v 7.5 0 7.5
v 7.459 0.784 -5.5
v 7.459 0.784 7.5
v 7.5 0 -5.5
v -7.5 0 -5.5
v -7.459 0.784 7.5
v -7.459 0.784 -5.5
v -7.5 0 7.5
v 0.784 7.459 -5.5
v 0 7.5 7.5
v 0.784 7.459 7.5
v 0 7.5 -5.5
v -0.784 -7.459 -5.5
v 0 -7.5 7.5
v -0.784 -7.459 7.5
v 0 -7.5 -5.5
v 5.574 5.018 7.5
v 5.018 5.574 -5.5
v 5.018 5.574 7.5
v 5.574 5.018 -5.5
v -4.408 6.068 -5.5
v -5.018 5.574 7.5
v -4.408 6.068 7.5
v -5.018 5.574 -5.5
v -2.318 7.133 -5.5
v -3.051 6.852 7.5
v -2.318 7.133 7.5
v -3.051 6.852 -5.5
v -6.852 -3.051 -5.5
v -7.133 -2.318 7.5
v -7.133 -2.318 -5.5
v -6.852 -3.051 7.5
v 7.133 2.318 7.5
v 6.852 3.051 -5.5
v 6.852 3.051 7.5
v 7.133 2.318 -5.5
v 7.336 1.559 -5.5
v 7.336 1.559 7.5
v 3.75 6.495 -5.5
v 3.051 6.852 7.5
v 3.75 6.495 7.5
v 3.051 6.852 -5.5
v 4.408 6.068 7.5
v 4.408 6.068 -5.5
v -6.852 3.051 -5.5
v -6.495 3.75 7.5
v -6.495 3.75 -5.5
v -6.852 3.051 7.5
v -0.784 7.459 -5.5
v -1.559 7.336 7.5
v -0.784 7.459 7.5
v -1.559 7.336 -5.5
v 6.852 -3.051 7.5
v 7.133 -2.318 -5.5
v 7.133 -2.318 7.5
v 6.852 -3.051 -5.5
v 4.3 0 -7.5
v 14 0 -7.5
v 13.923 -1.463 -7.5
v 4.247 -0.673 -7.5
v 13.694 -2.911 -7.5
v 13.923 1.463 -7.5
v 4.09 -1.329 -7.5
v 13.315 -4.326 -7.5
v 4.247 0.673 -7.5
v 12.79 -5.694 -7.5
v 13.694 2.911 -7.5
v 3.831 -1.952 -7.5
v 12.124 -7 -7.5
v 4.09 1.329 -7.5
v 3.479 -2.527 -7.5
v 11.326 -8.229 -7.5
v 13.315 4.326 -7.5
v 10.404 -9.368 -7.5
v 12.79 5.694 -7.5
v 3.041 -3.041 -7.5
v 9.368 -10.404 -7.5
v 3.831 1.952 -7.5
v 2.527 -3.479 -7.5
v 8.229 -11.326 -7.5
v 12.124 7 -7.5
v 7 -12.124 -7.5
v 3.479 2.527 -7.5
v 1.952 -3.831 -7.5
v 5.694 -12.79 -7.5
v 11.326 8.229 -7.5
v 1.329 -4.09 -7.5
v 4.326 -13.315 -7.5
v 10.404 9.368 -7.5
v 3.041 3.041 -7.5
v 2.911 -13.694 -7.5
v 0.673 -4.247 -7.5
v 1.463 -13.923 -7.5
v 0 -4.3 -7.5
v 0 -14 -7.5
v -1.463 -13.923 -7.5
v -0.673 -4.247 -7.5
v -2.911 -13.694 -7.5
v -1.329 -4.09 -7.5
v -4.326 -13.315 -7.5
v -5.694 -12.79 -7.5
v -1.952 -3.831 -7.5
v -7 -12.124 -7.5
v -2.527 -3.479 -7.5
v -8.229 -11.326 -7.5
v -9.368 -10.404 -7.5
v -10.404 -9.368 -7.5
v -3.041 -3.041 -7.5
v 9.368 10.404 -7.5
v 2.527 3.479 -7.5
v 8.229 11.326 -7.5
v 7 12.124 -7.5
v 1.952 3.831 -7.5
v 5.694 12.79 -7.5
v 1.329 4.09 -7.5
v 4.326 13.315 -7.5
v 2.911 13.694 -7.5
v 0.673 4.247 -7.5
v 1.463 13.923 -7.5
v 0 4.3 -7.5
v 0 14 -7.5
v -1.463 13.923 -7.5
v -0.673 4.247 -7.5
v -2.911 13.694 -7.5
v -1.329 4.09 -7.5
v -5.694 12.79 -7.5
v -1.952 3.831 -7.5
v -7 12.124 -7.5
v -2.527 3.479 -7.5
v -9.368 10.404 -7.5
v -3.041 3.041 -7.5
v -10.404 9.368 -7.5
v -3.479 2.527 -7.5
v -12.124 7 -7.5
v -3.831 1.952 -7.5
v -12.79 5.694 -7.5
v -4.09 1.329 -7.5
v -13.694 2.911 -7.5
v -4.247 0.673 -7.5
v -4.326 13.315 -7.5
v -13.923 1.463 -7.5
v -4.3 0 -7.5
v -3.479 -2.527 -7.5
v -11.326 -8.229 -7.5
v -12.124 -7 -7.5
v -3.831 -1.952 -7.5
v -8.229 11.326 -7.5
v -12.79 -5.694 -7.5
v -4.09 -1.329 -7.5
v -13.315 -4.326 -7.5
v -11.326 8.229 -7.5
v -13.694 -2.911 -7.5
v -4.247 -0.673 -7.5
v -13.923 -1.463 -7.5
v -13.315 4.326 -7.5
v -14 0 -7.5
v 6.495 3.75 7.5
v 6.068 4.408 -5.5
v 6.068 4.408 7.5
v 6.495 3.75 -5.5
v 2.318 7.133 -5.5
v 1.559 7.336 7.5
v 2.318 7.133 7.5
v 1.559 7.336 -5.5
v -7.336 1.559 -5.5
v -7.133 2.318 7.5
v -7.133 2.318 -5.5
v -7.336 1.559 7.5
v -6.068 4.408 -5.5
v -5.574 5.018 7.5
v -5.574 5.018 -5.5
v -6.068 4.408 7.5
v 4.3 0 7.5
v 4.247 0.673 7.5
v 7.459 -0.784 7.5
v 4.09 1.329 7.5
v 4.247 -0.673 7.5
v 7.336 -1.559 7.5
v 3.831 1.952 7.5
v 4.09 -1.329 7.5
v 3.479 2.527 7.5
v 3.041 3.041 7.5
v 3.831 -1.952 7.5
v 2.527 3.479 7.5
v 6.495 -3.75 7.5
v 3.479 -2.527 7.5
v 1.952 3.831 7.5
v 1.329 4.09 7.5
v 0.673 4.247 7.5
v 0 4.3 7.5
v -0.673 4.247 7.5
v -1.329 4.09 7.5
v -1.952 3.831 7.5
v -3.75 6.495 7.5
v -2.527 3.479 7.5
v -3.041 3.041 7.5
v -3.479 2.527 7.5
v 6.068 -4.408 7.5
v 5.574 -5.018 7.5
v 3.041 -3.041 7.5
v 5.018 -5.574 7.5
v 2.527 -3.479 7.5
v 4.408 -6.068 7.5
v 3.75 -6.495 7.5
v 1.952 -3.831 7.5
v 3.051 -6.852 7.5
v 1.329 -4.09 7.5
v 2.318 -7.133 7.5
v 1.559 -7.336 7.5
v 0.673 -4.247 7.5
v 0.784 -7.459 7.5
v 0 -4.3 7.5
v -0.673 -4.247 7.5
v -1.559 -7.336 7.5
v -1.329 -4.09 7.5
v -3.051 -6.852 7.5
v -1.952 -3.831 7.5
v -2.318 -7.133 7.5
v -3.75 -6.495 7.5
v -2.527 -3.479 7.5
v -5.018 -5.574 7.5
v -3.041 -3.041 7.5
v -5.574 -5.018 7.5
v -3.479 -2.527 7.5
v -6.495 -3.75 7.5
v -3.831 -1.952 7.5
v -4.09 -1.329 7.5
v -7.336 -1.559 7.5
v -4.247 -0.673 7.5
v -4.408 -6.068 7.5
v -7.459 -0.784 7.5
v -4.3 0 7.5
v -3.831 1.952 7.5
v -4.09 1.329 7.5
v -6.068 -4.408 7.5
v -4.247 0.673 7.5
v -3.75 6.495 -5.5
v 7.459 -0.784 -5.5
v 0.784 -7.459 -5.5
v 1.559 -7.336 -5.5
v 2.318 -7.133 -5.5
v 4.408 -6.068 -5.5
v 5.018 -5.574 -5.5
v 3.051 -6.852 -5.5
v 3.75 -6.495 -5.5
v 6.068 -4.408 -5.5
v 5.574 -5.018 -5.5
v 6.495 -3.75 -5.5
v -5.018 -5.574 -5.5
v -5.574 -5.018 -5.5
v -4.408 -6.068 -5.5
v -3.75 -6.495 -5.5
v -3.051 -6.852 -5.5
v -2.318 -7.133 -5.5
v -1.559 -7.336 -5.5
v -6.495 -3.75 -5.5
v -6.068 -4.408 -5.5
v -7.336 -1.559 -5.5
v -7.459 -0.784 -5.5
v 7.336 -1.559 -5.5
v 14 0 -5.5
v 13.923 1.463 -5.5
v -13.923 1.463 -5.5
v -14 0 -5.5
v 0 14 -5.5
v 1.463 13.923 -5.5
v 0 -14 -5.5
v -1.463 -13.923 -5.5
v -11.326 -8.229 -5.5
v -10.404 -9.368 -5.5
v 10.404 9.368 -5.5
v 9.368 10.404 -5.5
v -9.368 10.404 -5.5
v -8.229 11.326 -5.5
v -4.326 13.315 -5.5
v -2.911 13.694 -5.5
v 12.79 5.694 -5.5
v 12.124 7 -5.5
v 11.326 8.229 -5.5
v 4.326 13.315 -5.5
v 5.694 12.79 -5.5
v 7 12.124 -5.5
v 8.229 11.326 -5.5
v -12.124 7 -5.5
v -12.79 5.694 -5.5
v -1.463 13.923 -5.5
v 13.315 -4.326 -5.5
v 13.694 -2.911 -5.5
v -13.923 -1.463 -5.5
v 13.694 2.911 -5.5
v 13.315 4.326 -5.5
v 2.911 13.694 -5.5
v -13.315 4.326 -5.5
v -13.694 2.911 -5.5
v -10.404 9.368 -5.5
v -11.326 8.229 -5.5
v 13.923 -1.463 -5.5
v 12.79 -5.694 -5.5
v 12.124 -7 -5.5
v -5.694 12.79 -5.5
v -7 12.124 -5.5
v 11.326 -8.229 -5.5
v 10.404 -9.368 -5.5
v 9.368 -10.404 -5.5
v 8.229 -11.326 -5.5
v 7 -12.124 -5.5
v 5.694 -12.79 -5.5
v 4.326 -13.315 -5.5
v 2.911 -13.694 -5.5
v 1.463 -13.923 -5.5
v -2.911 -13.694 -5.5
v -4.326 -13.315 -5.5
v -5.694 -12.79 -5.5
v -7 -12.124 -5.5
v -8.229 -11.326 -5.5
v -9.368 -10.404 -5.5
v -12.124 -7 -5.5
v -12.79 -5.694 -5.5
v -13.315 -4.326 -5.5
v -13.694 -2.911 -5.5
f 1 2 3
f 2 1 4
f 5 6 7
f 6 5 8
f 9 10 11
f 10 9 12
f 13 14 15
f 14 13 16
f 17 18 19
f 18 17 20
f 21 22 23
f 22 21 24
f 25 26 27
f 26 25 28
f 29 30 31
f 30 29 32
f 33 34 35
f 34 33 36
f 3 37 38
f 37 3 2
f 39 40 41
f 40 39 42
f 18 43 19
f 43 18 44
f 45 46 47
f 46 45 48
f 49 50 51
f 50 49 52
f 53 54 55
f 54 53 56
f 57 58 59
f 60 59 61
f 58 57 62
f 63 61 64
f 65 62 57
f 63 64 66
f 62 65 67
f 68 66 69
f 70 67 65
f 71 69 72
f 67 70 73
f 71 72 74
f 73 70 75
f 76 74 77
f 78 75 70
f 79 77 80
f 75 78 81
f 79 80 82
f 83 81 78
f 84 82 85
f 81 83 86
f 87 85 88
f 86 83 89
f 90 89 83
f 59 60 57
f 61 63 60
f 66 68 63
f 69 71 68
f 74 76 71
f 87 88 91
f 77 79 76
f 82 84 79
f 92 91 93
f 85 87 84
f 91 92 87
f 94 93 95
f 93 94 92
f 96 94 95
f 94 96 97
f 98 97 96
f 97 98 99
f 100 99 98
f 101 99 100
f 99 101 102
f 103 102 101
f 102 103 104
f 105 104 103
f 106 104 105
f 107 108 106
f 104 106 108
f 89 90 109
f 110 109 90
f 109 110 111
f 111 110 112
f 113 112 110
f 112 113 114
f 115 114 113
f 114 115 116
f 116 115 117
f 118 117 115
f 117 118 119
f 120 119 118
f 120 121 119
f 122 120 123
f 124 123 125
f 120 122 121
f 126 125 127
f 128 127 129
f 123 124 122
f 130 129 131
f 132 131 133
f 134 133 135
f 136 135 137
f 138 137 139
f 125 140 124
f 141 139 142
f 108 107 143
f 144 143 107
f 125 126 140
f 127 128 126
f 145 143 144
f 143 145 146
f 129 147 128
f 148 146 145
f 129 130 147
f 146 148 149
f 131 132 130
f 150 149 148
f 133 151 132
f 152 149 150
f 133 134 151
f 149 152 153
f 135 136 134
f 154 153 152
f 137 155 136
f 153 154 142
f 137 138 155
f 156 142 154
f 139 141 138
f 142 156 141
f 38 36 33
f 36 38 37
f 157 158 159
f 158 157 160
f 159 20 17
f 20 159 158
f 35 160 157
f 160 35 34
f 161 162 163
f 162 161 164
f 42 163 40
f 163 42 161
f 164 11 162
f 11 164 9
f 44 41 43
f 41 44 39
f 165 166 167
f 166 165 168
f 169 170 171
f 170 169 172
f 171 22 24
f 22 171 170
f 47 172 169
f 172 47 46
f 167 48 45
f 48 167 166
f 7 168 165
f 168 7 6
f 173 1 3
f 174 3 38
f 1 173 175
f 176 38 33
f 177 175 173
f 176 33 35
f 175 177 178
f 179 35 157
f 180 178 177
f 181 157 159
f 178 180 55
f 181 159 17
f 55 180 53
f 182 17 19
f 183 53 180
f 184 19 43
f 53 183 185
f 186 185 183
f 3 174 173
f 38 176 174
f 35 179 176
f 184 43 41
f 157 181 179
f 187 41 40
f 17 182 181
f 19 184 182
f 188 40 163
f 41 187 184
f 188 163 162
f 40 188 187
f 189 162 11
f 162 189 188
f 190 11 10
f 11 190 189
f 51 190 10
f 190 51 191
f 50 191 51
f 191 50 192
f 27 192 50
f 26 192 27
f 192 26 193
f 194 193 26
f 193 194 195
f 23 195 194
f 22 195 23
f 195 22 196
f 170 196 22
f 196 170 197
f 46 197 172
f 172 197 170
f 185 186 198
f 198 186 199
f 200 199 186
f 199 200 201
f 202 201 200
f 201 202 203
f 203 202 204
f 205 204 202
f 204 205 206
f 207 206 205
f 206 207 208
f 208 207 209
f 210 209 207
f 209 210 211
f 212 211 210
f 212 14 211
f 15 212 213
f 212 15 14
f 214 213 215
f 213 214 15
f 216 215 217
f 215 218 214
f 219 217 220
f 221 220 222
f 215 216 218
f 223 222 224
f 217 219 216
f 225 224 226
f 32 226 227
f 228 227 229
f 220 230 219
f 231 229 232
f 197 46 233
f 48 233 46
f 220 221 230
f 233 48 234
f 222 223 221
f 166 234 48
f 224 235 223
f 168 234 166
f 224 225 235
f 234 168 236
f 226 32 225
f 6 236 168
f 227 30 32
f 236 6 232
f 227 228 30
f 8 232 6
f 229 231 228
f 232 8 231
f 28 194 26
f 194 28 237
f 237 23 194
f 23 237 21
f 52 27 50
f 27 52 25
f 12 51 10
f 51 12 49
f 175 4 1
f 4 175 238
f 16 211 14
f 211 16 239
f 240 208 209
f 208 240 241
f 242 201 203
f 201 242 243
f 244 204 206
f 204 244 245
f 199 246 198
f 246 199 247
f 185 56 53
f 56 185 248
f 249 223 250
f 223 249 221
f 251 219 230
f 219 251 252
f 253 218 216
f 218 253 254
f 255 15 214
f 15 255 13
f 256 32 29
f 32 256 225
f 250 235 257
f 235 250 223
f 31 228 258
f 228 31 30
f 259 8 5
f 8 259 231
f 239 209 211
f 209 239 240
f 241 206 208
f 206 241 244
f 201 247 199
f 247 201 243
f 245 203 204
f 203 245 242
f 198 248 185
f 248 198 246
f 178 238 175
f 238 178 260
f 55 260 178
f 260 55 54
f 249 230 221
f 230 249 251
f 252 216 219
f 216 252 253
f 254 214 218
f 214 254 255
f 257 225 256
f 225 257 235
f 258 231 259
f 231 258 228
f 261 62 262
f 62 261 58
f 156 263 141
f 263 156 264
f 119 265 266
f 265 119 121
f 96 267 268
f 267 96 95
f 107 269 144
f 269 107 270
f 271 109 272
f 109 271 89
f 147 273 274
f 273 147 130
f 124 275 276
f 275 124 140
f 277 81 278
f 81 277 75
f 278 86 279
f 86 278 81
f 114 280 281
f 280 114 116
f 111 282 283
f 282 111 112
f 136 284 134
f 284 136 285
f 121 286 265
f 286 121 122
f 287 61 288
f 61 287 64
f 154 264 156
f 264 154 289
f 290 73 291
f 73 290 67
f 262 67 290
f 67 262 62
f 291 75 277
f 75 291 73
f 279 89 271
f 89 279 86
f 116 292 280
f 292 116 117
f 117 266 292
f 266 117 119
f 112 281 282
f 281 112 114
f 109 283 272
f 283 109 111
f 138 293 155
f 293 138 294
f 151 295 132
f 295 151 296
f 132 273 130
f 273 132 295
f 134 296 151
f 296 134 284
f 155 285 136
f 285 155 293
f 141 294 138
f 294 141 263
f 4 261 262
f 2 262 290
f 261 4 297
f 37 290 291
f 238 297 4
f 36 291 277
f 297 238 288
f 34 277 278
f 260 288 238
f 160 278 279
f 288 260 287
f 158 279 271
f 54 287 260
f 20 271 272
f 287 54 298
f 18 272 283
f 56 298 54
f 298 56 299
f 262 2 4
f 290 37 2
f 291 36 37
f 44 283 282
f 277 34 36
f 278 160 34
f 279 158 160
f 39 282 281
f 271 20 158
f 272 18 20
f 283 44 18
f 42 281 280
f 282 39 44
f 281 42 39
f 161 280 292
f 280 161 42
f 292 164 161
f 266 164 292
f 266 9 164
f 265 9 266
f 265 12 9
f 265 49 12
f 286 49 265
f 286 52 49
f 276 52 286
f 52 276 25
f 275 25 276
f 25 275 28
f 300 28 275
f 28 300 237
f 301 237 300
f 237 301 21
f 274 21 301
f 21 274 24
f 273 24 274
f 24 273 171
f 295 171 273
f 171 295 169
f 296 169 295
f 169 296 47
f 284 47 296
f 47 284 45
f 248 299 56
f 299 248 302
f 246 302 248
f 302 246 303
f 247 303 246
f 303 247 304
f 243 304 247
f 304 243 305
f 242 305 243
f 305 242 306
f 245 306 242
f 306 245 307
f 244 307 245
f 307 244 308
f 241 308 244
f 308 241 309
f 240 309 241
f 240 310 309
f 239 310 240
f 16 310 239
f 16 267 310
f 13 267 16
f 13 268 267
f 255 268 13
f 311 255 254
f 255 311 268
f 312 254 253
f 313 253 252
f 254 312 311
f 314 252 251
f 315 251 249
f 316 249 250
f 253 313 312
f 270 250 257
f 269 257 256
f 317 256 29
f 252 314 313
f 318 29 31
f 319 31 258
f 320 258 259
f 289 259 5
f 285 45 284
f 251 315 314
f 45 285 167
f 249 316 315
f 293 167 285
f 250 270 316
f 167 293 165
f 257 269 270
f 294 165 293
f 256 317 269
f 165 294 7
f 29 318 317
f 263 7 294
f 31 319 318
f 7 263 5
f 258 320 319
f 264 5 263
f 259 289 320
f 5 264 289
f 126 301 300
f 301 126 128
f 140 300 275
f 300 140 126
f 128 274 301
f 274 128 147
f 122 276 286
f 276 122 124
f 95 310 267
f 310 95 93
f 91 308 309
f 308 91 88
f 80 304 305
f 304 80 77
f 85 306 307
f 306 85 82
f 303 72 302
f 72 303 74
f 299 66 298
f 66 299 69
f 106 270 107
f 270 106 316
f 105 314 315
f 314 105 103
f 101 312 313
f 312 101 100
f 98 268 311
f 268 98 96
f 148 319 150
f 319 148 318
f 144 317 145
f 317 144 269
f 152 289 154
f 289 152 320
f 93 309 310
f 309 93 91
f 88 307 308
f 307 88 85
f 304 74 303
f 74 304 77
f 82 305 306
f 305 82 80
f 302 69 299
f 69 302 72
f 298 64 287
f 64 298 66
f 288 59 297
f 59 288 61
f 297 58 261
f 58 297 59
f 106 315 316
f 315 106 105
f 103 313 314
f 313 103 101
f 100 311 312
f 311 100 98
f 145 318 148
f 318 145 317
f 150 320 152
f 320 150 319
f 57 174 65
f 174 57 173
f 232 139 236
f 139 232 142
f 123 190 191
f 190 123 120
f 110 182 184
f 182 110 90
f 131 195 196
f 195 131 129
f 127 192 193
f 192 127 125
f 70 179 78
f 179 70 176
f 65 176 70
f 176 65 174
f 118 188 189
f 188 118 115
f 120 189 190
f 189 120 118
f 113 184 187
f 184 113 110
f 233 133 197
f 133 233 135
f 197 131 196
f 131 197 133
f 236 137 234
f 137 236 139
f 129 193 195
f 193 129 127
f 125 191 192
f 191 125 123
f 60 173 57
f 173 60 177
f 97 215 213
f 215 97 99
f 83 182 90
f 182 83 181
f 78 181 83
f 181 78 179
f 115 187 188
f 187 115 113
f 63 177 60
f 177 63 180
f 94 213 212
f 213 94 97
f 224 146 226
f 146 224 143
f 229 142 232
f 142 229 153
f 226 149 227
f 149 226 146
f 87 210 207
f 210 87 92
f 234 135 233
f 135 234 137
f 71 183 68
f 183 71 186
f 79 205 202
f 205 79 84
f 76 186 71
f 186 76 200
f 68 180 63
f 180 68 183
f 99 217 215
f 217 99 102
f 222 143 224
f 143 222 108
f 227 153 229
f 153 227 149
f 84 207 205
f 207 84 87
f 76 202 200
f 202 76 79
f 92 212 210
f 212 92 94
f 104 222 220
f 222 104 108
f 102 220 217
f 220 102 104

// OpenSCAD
// RebeliX
//
// spool-bearing
// GNU GPL v3
// Martin Neruda
// http://www.reprap4u.cz

height = 15;

difference()
{
  union()
  {
	cylinder(r=7.5, h=height, $fn=60, center=true);
	translate([0,0,-height/2]) cylinder(r=14, h=2, $fn=60);
  }
  cylinder(r=4.3, h=height+1, $fn=40,center=true);
}	
